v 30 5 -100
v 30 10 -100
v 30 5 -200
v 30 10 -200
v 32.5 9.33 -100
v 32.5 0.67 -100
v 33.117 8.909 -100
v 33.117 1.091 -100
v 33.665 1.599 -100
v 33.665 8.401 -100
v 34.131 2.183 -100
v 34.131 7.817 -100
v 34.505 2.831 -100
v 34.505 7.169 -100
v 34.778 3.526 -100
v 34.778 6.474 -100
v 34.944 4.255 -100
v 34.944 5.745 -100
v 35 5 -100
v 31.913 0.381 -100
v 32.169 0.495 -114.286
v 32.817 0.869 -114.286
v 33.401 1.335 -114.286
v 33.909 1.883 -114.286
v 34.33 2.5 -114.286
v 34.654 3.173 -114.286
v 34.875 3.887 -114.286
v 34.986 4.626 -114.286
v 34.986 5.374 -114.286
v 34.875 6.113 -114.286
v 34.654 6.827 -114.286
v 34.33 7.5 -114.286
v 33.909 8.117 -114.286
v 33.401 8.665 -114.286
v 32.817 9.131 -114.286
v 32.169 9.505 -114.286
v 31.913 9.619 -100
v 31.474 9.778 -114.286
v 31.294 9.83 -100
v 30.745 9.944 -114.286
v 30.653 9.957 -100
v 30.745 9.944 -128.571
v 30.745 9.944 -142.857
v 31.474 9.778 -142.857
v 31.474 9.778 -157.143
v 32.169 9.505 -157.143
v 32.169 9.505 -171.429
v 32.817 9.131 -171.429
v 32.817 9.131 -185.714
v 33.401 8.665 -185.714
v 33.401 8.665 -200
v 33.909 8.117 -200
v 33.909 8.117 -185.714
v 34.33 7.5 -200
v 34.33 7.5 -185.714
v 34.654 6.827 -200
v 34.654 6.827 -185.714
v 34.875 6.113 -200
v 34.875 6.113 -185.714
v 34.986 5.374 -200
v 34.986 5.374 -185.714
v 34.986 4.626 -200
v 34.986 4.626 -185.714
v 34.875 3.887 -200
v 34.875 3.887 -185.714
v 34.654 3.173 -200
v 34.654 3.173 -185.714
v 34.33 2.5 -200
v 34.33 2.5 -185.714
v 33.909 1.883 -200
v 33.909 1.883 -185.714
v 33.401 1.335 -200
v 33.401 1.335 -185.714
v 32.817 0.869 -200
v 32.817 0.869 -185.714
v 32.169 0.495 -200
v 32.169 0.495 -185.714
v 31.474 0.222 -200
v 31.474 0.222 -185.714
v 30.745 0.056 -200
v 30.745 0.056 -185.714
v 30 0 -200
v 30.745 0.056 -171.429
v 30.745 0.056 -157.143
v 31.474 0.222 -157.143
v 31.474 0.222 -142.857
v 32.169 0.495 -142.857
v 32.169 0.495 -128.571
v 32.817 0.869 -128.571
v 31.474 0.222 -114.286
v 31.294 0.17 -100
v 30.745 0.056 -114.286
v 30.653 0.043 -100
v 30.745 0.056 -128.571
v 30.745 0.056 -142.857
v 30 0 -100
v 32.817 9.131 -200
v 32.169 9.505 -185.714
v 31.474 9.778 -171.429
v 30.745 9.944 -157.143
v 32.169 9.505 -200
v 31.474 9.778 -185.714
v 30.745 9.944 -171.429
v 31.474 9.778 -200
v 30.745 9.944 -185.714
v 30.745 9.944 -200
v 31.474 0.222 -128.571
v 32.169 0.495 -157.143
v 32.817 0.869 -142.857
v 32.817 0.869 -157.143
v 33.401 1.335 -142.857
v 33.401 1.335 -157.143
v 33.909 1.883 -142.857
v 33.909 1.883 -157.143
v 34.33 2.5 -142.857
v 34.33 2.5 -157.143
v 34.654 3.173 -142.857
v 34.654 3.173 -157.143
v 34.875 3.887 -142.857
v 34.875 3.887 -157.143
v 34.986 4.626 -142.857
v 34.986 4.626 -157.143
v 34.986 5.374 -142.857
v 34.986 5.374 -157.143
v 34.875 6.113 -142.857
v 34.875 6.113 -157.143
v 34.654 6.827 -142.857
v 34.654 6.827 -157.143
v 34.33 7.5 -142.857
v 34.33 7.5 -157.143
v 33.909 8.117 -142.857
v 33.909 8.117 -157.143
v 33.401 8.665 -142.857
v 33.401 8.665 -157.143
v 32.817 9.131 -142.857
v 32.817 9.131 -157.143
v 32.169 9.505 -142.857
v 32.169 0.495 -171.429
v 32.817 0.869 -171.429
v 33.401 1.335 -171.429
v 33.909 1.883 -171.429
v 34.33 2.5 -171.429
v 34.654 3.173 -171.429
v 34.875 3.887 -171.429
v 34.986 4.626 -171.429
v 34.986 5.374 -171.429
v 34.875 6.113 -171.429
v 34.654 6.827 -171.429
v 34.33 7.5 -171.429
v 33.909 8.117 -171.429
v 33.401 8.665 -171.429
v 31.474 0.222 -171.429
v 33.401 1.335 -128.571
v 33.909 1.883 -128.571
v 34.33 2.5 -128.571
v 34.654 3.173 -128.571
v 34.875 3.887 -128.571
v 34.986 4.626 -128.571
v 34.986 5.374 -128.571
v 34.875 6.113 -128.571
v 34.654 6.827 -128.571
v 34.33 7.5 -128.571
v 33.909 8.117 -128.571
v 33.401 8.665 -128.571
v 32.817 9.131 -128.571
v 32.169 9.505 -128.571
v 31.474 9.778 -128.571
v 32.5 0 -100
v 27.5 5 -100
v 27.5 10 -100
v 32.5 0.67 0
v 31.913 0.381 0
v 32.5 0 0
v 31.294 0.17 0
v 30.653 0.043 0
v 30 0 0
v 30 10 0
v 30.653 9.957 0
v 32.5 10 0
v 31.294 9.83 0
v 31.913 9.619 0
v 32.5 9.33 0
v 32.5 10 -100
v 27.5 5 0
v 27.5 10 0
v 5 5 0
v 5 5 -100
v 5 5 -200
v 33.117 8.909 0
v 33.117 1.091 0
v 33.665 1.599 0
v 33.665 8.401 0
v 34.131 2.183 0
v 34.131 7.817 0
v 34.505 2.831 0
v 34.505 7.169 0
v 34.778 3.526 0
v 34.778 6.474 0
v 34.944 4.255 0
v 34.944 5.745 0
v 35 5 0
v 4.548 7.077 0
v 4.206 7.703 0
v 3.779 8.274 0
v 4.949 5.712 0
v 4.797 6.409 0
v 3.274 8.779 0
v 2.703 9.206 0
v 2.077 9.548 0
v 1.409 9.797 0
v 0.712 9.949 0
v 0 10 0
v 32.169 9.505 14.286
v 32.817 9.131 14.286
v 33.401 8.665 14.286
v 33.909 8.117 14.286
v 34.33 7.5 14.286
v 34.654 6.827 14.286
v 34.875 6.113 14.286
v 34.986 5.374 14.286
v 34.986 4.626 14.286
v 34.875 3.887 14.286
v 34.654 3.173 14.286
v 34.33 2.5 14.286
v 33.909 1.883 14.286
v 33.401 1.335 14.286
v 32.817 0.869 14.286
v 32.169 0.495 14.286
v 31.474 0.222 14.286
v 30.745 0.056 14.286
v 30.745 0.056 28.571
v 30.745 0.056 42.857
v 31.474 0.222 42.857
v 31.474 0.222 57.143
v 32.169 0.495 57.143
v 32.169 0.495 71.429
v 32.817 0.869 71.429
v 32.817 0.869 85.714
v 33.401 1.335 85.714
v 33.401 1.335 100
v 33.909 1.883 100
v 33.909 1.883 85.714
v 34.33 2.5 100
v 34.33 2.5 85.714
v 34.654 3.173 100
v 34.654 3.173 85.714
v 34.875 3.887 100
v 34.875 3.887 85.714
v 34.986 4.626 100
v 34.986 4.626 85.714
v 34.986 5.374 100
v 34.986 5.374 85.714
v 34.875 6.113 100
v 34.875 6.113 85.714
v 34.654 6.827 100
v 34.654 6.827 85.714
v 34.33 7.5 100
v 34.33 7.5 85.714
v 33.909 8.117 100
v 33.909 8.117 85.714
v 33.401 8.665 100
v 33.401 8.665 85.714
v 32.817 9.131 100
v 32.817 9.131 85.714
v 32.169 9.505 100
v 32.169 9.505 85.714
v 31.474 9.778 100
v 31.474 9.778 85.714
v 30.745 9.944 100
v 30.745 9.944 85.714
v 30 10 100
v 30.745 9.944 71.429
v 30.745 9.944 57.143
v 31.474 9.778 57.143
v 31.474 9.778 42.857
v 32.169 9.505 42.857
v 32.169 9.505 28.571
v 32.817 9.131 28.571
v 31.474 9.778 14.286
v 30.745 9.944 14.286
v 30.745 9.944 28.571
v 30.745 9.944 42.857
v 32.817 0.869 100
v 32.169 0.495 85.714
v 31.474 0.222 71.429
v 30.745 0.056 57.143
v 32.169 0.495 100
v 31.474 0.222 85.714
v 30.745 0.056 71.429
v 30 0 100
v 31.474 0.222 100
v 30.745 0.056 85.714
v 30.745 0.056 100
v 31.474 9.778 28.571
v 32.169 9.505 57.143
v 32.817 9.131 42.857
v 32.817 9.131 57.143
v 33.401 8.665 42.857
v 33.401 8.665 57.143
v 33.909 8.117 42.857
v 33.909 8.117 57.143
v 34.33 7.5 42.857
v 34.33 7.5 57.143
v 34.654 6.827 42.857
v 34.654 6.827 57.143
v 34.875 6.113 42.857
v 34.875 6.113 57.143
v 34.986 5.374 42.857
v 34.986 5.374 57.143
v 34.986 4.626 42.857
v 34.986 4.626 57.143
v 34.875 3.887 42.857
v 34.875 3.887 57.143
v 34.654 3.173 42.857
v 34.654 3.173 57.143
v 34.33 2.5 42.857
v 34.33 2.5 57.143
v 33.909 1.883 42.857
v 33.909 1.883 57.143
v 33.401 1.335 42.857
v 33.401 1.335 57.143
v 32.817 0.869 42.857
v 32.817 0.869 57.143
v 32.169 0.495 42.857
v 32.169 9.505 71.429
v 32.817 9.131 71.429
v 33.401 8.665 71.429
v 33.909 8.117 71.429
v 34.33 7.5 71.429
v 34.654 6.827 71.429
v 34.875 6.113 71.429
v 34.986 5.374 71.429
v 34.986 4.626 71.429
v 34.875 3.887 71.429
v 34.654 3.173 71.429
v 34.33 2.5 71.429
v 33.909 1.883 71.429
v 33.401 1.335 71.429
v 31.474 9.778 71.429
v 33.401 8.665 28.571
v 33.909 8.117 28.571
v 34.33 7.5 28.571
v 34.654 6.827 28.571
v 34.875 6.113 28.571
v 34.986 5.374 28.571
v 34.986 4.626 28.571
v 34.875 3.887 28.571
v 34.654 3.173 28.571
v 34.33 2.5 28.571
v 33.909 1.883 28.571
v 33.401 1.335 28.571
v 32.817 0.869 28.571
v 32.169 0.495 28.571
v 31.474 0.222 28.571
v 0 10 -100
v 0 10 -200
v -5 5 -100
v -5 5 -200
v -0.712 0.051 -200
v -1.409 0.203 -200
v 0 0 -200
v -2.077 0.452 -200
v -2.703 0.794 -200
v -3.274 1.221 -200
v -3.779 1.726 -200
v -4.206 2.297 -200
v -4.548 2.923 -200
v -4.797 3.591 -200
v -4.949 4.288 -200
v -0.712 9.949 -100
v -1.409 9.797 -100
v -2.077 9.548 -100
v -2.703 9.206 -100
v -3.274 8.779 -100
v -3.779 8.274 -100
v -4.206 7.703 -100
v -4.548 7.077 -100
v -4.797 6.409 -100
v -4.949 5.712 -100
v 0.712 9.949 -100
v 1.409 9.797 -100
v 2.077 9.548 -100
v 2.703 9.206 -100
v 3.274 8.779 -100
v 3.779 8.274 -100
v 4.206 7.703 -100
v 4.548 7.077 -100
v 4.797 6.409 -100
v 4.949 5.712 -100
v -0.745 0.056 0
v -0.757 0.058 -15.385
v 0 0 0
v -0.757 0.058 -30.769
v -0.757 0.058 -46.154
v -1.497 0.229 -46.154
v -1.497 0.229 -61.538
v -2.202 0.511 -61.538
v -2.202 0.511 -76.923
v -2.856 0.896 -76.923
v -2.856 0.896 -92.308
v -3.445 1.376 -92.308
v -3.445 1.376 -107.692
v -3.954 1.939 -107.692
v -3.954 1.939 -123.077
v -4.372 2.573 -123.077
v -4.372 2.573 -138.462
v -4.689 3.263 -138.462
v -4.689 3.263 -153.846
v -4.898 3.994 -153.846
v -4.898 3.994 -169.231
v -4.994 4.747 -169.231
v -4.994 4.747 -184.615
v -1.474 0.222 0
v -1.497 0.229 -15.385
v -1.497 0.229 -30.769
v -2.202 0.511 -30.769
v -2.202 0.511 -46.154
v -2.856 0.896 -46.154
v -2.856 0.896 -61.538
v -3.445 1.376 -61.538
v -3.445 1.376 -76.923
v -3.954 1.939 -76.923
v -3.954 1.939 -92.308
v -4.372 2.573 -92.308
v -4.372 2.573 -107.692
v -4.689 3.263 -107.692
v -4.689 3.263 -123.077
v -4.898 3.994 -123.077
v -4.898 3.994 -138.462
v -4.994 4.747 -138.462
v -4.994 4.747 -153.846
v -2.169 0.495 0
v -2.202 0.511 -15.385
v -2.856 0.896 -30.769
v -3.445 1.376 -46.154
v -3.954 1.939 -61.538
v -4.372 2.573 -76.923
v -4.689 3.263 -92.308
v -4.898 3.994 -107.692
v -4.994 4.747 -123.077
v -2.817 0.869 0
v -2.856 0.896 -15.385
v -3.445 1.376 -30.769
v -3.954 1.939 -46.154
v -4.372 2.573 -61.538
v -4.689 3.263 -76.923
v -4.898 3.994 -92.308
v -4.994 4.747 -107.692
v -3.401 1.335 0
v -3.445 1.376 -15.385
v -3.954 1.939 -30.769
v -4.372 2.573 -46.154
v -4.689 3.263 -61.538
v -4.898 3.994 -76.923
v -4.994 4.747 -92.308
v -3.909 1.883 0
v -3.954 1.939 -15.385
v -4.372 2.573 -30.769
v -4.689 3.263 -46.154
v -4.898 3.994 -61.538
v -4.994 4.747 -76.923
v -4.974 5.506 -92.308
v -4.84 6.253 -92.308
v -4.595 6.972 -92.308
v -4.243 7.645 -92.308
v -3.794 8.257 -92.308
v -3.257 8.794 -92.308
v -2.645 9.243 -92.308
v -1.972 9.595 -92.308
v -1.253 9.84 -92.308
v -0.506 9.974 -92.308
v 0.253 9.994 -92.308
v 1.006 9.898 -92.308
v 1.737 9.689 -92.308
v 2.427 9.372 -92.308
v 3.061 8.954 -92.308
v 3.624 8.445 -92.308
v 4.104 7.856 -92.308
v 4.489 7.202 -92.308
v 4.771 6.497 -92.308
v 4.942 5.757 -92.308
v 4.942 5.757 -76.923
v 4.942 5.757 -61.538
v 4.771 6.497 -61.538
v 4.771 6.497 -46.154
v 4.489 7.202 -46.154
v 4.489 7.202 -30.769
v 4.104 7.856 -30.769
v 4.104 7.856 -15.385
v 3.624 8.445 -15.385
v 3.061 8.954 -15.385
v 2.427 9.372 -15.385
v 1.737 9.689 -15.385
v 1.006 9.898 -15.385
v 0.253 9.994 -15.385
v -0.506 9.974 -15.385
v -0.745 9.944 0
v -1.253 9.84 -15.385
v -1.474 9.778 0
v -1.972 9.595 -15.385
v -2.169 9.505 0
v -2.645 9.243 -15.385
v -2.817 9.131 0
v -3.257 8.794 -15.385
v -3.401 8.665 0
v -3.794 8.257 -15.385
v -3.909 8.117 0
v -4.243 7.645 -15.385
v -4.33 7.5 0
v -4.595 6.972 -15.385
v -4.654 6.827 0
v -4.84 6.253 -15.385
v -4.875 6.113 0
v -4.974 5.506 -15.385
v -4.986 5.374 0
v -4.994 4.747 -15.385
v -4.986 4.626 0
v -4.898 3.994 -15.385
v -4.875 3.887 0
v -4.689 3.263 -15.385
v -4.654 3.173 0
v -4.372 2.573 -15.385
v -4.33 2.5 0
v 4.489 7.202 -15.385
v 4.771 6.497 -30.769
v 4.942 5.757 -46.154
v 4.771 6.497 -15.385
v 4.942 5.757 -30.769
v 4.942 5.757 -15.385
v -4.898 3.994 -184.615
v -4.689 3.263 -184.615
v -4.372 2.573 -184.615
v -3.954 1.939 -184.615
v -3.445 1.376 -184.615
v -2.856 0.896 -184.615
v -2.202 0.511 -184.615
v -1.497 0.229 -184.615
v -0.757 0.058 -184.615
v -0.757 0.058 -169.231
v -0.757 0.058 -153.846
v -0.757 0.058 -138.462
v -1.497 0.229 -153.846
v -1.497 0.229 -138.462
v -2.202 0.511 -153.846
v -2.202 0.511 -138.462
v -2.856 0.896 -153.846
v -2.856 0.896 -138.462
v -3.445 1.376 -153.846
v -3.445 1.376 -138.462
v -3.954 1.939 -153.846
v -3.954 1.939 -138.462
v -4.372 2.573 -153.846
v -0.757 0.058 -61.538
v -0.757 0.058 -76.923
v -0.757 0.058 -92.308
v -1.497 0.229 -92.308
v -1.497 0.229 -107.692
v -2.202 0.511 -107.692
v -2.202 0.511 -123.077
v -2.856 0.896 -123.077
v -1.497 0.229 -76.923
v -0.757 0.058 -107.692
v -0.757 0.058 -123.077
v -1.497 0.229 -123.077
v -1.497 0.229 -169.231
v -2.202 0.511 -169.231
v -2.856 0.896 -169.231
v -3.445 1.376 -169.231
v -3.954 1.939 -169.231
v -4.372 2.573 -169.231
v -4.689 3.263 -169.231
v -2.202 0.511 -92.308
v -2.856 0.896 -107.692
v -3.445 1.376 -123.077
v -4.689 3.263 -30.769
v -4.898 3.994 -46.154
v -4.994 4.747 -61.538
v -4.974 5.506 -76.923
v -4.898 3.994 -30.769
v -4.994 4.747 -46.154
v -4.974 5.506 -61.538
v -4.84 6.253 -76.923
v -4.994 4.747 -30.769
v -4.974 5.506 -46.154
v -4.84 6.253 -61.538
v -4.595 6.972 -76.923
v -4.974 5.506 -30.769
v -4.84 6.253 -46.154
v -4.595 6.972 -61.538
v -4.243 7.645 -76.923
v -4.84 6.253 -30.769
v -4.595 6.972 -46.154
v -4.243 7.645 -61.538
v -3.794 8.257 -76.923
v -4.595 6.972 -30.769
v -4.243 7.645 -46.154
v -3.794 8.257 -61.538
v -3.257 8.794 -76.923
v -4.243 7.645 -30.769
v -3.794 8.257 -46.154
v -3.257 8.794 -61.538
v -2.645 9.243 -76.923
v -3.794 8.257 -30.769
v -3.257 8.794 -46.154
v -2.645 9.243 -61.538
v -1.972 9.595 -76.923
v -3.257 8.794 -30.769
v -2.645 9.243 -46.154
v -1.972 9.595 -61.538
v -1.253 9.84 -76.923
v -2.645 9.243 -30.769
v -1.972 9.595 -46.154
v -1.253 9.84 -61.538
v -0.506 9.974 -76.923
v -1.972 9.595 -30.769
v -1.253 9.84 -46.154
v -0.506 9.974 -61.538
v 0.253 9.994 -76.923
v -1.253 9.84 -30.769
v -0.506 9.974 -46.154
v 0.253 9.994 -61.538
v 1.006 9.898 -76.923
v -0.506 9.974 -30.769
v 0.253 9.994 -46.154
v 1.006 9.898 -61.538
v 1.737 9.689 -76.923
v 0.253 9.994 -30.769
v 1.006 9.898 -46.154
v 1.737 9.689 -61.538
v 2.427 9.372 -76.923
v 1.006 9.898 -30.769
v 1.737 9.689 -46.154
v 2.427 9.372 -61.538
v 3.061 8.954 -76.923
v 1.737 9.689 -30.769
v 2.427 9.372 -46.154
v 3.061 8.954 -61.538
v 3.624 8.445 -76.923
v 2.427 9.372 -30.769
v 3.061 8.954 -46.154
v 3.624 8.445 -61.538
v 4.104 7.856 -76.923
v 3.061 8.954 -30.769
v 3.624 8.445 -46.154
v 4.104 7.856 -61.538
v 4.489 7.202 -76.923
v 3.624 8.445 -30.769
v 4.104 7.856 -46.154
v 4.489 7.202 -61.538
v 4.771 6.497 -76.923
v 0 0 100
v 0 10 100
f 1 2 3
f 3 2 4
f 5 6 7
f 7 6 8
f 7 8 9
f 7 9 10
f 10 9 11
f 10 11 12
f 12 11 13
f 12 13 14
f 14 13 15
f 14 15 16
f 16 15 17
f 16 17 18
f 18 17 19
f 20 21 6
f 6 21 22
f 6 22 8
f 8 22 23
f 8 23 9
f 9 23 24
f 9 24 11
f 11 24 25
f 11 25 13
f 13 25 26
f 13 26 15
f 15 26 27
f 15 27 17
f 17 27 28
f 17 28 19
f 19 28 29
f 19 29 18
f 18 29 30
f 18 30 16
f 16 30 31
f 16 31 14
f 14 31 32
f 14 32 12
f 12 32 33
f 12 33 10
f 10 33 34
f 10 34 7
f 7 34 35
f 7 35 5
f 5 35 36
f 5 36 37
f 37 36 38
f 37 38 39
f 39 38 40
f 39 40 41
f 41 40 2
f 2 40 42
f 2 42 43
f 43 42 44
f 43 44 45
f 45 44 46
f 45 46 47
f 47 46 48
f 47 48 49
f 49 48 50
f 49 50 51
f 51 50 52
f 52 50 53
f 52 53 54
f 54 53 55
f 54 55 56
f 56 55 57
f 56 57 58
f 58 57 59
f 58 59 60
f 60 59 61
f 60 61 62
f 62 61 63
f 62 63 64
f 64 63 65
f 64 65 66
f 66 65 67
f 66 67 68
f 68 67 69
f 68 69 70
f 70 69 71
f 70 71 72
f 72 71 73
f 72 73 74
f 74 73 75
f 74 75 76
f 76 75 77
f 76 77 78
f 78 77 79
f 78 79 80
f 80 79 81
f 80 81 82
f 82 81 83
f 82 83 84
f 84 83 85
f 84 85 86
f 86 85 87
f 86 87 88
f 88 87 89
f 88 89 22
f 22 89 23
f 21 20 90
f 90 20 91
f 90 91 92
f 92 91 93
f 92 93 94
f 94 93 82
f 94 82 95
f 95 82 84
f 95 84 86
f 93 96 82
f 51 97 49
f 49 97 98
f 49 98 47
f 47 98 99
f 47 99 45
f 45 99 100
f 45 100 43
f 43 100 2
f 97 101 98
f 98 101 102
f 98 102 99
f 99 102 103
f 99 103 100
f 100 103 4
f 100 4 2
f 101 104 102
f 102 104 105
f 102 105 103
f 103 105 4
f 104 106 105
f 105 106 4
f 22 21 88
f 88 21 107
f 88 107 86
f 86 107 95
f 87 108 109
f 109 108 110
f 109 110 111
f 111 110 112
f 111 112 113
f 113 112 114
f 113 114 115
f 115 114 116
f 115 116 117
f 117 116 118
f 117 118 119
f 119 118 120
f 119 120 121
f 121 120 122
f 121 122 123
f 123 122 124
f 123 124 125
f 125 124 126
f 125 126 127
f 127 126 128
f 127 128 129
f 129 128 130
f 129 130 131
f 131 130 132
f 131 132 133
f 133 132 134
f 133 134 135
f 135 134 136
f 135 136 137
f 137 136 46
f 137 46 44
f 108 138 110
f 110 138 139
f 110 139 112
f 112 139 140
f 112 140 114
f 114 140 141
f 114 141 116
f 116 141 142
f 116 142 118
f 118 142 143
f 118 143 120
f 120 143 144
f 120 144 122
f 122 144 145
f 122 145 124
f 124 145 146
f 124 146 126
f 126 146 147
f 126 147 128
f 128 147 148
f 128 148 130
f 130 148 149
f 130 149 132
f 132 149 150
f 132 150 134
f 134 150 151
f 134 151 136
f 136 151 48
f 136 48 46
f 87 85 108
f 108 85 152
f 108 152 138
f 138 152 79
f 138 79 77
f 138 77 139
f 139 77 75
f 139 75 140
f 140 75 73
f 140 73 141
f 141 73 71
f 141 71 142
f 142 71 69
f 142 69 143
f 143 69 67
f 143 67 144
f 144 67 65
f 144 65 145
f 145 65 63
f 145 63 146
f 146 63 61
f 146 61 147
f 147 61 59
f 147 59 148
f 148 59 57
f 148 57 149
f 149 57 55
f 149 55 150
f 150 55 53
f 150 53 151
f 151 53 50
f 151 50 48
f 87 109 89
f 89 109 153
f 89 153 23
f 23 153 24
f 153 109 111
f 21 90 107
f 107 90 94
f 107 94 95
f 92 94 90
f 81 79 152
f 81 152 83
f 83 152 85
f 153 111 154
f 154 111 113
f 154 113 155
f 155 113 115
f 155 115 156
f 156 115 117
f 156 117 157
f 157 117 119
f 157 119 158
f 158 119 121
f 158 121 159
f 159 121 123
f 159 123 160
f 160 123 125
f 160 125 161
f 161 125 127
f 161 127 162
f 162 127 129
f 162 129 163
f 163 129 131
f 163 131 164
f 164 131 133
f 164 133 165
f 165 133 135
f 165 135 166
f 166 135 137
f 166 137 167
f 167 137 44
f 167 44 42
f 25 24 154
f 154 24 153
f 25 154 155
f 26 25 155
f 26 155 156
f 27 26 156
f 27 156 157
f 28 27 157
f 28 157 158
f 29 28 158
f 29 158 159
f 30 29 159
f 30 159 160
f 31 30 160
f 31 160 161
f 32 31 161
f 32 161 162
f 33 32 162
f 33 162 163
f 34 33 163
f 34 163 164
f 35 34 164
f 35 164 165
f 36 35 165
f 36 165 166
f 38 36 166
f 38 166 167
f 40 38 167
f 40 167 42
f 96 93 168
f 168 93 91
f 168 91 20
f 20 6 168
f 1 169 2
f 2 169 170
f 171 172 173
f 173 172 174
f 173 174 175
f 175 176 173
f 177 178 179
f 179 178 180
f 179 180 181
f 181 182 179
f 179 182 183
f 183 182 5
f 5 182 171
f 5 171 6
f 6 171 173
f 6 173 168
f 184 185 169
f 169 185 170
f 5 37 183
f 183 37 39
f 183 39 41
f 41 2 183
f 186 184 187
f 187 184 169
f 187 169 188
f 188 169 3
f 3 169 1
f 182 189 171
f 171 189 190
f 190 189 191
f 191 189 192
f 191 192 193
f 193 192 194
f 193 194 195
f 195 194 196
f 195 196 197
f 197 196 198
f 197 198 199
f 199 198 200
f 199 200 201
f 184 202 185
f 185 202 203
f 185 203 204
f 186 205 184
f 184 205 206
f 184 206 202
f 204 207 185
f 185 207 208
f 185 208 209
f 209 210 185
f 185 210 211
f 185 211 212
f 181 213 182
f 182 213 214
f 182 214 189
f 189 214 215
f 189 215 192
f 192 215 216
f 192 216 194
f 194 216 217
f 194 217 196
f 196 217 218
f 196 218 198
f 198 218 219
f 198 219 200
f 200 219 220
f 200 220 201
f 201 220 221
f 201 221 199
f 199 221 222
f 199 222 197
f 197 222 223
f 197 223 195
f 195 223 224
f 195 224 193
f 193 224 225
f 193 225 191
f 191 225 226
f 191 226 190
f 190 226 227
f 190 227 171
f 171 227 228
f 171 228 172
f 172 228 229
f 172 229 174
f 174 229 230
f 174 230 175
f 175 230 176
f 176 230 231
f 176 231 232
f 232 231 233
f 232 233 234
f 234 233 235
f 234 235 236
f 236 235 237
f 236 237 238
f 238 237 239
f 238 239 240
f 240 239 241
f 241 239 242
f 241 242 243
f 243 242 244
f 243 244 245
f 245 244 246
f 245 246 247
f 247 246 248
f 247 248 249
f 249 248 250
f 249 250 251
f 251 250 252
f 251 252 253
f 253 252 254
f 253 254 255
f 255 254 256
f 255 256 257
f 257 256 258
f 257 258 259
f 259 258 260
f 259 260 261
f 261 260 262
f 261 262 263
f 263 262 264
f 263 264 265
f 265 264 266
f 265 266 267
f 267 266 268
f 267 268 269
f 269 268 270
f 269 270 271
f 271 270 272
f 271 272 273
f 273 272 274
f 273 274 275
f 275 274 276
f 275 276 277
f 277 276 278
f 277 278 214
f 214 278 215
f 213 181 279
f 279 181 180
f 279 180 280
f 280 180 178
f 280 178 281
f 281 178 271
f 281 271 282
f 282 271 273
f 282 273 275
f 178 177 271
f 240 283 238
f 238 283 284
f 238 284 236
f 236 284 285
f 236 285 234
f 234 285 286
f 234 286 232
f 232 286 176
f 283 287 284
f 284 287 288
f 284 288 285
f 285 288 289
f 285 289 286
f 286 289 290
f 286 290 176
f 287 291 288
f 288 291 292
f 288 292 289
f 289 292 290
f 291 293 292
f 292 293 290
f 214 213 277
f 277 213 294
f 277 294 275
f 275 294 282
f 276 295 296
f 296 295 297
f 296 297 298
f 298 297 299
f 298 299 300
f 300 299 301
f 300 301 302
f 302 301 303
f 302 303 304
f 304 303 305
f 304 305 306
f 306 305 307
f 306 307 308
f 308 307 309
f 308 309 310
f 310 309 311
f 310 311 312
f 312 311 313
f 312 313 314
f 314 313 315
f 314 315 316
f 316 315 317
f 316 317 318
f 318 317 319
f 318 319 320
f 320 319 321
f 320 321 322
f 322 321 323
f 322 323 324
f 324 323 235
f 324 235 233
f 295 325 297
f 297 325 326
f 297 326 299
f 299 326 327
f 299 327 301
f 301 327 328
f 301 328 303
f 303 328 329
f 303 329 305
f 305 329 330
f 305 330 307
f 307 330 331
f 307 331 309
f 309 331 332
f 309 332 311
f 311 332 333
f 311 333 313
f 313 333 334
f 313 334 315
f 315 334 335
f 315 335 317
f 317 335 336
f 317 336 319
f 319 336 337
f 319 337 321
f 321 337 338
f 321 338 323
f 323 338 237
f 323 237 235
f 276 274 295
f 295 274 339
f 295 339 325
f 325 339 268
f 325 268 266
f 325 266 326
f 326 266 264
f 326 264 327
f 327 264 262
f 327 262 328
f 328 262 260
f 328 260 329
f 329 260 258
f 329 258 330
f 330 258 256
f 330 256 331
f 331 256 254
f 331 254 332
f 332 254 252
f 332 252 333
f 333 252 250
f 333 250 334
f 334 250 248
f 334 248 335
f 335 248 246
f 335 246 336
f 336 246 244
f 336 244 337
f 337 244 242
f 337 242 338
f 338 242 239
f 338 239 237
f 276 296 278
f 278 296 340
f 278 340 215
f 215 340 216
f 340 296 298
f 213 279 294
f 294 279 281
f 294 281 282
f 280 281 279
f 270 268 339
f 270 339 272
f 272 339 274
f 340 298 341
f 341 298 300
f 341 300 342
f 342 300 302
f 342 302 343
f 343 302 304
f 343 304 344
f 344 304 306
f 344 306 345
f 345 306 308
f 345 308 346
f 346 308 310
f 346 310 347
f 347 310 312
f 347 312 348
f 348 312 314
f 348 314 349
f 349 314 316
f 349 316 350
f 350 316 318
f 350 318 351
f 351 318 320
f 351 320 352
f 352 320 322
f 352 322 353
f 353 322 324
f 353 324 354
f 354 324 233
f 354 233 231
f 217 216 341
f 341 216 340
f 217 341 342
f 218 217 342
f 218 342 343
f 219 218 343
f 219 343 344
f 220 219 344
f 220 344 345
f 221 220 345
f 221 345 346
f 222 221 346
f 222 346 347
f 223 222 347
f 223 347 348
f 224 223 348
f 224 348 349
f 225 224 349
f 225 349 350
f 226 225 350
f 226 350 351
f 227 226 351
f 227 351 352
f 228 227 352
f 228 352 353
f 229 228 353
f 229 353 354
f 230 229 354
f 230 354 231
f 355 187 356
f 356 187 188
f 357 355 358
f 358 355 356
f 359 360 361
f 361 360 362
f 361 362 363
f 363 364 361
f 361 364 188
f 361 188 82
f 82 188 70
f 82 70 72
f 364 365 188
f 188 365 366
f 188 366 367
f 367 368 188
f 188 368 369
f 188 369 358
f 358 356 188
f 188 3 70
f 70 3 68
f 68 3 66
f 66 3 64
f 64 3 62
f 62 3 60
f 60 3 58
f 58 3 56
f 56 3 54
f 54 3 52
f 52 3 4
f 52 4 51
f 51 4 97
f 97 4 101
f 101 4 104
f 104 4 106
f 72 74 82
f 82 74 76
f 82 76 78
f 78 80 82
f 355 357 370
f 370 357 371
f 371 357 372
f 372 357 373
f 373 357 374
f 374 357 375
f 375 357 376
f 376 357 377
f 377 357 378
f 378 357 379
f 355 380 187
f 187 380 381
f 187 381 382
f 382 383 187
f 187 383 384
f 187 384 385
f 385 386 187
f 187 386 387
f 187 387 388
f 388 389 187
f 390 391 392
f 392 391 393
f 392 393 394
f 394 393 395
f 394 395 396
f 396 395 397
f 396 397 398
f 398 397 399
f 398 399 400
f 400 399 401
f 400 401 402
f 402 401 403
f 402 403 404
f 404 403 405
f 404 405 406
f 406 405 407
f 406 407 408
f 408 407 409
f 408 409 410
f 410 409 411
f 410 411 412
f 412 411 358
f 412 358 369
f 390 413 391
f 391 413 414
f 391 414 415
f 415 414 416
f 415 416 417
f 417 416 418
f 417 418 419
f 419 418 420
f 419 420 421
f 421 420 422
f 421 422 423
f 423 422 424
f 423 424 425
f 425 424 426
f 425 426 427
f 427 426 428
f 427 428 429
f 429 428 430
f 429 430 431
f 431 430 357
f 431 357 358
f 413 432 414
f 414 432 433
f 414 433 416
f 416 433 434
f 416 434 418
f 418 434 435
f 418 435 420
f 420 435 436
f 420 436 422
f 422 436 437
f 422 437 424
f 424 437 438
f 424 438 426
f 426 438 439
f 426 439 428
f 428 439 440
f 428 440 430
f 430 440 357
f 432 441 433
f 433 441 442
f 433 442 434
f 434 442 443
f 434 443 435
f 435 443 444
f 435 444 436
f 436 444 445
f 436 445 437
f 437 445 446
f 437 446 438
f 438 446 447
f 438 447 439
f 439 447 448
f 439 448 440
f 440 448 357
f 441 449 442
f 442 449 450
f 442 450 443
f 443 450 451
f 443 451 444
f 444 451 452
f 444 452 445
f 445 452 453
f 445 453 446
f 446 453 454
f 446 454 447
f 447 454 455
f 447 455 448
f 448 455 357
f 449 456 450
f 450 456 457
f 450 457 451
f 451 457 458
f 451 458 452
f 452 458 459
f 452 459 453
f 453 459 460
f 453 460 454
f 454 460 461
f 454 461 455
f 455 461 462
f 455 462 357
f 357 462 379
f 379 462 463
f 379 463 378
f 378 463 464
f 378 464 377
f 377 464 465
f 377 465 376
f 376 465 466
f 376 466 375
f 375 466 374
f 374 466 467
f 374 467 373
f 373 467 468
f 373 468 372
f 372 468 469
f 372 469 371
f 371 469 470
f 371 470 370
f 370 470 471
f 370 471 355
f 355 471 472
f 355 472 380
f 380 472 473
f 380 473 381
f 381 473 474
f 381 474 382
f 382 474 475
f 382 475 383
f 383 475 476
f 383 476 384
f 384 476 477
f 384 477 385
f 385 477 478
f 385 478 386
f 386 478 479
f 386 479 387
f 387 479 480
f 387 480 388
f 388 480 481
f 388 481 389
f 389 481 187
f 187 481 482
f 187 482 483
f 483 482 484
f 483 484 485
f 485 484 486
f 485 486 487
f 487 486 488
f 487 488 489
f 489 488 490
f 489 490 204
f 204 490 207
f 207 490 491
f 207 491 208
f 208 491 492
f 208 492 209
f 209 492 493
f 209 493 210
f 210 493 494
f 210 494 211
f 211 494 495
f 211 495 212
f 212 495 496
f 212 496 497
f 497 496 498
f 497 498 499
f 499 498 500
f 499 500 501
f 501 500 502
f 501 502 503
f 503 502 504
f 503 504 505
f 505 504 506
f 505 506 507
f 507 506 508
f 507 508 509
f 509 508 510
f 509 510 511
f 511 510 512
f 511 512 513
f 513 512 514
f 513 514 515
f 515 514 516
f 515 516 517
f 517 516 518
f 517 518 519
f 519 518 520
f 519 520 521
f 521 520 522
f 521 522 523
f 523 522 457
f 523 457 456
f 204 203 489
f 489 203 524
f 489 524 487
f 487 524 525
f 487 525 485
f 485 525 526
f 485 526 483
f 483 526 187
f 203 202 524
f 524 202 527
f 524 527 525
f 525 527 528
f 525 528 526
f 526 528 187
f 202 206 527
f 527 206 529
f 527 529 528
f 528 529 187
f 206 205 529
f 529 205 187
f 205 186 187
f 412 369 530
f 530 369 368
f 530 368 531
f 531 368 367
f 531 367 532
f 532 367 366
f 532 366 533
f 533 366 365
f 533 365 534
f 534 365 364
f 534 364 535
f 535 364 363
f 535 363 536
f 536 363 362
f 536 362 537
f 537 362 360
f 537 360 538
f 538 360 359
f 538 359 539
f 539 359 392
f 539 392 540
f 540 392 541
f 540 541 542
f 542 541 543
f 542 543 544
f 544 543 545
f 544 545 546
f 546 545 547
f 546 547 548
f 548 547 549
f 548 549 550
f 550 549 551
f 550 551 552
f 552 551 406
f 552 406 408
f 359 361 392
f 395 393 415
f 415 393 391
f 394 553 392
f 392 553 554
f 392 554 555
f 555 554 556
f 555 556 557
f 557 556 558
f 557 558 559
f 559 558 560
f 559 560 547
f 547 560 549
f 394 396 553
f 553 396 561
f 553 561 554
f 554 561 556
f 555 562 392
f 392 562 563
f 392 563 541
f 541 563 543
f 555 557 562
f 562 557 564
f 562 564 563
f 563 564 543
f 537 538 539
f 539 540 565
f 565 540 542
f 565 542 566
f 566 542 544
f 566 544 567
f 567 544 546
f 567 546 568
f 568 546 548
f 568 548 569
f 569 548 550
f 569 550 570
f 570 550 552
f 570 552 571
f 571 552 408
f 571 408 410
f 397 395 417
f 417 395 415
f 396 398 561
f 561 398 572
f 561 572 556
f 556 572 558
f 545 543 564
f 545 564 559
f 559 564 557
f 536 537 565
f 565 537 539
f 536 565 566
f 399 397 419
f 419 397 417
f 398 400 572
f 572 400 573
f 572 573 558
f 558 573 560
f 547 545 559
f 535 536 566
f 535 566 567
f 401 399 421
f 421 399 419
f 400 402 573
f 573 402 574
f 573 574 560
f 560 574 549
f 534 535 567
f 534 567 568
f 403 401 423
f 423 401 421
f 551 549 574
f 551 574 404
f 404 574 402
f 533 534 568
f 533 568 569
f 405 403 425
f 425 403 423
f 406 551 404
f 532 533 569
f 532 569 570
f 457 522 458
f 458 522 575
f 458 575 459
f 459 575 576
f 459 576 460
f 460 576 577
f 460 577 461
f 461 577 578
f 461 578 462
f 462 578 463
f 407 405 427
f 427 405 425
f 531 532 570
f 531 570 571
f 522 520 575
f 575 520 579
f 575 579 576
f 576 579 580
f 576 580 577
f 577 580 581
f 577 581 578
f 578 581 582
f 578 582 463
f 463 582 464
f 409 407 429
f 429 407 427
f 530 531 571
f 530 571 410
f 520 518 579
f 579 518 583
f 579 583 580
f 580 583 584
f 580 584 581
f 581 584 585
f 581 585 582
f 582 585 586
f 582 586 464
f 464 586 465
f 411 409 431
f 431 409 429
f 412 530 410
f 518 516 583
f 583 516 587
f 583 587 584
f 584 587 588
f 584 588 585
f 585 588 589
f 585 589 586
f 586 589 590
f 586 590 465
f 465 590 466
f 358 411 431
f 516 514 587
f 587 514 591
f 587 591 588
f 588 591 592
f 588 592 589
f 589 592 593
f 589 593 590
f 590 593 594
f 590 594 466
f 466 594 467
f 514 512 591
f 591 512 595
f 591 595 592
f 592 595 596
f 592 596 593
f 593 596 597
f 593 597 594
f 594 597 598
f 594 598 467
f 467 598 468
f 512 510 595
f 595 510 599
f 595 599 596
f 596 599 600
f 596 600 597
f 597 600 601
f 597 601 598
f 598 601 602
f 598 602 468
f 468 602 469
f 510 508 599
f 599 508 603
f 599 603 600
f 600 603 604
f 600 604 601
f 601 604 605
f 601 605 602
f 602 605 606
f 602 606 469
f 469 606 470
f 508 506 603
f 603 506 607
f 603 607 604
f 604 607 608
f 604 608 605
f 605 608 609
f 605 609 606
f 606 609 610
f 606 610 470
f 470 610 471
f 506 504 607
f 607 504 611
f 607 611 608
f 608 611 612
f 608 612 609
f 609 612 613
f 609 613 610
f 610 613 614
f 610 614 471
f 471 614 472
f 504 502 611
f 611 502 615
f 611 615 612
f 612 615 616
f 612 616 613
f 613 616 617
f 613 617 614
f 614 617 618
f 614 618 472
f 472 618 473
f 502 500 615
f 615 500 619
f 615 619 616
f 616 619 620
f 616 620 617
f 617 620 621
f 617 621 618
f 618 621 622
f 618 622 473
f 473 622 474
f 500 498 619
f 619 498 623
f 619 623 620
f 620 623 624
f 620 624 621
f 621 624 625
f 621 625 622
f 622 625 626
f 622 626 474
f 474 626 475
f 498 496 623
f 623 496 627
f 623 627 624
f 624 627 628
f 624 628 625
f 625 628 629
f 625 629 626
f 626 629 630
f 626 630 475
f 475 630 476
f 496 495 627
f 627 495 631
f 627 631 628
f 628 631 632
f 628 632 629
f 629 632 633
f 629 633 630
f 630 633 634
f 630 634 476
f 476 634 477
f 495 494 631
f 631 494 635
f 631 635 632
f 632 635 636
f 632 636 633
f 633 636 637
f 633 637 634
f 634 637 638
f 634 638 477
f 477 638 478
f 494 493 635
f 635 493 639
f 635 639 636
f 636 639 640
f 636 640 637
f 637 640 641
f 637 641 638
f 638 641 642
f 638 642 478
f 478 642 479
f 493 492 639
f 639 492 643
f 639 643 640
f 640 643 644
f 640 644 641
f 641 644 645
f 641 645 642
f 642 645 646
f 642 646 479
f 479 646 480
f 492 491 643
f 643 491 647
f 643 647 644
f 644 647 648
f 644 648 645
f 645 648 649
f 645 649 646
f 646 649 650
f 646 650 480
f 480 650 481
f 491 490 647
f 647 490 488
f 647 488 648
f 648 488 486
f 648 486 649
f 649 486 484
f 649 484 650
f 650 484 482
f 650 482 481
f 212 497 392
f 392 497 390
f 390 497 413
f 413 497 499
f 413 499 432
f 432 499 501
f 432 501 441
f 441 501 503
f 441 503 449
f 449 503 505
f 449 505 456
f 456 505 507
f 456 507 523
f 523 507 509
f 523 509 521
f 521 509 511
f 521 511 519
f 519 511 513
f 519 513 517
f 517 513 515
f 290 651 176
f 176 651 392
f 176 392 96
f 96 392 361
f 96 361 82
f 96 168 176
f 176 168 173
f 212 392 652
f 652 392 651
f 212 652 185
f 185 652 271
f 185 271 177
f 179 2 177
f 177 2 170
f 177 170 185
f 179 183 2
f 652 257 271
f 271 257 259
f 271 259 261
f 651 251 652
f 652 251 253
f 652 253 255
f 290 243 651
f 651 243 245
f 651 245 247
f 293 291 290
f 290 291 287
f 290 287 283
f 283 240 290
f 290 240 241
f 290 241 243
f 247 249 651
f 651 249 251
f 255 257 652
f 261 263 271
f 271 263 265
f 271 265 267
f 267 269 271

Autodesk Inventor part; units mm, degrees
ref_plane "YZ Plane" through (0, 0, 0) normal (1, 0, 0) x (0, 1, 0)
ref_plane "XZ Plane" through (0, 0, 0) normal (0, 1, 0) x (-1, 0, 0)
ref_plane "XY Plane" through (0, 0, 0) normal (0, 0, 1) x (1, 0, 0)
sketch "Sketch1" plane through (0, 0, 0) normal (0, 0, 1) x (1, 0, 0)
  line L0 (0, 0) -> (30, 0)
  line L1 (30, 0) -> (30, 10)
  line L2 (30, 10) -> (0, 10)
  line L3 (0, 10) -> (0, 0)
  dimension "d0" = 30
  dimension "d1" = 10
extrude "Extrusion1" add sketch "Sketch1" along normal blind 100
sketch "Sketch2" plane through (0, 0, 0) normal (0, 0, -1) x (-1, 0, 0)
  line L0 (0, 10) -> (0, 0) projected
  line L1 (-30, 10) -> (0, 10) projected
  arc A0 (0, 0) -> (-5, 5) centre (0, 5) ccw
  line L2 (-30, 0) -> (-30, 10) projected
  line L3 (-30, 5) -> (-5, 5)
  line L4 (0, 0) -> (-30, 0)
  line L5 (-30, 0) -> (-30, 5)
extrude "Extrusion2" add sketch "Sketch2" along normal blind 100 contours A0 L0 | L0 L4 L2 L3 A0
sketch "Sketch3" plane through (0, 0, -100) normal (0, 0, -1) x (-1, 0, 0)
  line L0 (-30, 10) -> (0, 10) projected
  line L1 (0, 10) -> (-5, 5)
  arc A0 (0, 0) -> (-5, 5) centre (0, 5) ccw projected
  line L2 (0, 10) -> (5, 5)
  line L3 (-30, 0) -> (-30, 10) projected
  line L4 (-30, 5) -> (-5, 5)
  line L5 (5, 5) -> (5, 0)
  line L6 (5, 0) -> (-30, 0)
  line L7 (-30, 0) -> (-30, 5)
extrude "Extrusion3" add sketch "Sketch3" along normal blind 100 contours L2 A0 L6 L3 L4 L1
sketch "Sketch4" plane through (0, 0, 100) normal (0, 0, 1) x (1, 0, 0)
  line L0 (30, 5) -> (5, 5) projected
  line L1 (30, 0) -> (30, 10) projected
  arc A0 (30, 0) -> (30, 10) centre (30, 5) ccw
  line L2 (30, 10) -> (30, 0)
  point P0 (0, 0)
extrude "Extrusion4" add sketch "Sketch4" against normal up to surface (100 mm away)
sketch "Sketch5" plane through (0, 0, 0) normal (0, 0, -1) x (-1, 0, 0)
  line L0 (-30, 10) -> (0, 10) projected
  line L1 (-32.5, 0) -> (-27.5, 0)
  line L2 (-27.5, 0) -> (-27.5, 10)
  line L3 (-27.5, 10) -> (-32.5, 10)
  line L4 (-32.5, 10) -> (-32.5, 0)
  line L5 (-30, 5) -> (-5, 5) projected
  line L6 (-32.5, 0) -> (-27.5, 10) construction
  line L7 (-27.5, 0) -> (-32.5, 10) construction
  point P0 (0, 0)
  dimension "d10" = 5
extrude "Extrusion5" add sketch "Sketch5" along normal blind 100
sketch "Sketch6" plane through (0, 0, -200) normal (0, 0, -1) x (-1, 0, 0)
  line L0 (-5, 5) -> (-30, 5) projected
  arc A0 (-30, 10) -> (-30, 0) centre (-30, 5) ccw
  line L1 (-30, 10) -> (0, 10) projected
  line L2 (-30, 5) -> (-30, 0) projected
  line L3 (-30, 10) -> (-30, 0)
  point P0 (0, 0)
extrude "Extrusion6" add sketch "Sketch6" against normal up to surface (100 mm away)
properties part number "edges_3DPrint"
